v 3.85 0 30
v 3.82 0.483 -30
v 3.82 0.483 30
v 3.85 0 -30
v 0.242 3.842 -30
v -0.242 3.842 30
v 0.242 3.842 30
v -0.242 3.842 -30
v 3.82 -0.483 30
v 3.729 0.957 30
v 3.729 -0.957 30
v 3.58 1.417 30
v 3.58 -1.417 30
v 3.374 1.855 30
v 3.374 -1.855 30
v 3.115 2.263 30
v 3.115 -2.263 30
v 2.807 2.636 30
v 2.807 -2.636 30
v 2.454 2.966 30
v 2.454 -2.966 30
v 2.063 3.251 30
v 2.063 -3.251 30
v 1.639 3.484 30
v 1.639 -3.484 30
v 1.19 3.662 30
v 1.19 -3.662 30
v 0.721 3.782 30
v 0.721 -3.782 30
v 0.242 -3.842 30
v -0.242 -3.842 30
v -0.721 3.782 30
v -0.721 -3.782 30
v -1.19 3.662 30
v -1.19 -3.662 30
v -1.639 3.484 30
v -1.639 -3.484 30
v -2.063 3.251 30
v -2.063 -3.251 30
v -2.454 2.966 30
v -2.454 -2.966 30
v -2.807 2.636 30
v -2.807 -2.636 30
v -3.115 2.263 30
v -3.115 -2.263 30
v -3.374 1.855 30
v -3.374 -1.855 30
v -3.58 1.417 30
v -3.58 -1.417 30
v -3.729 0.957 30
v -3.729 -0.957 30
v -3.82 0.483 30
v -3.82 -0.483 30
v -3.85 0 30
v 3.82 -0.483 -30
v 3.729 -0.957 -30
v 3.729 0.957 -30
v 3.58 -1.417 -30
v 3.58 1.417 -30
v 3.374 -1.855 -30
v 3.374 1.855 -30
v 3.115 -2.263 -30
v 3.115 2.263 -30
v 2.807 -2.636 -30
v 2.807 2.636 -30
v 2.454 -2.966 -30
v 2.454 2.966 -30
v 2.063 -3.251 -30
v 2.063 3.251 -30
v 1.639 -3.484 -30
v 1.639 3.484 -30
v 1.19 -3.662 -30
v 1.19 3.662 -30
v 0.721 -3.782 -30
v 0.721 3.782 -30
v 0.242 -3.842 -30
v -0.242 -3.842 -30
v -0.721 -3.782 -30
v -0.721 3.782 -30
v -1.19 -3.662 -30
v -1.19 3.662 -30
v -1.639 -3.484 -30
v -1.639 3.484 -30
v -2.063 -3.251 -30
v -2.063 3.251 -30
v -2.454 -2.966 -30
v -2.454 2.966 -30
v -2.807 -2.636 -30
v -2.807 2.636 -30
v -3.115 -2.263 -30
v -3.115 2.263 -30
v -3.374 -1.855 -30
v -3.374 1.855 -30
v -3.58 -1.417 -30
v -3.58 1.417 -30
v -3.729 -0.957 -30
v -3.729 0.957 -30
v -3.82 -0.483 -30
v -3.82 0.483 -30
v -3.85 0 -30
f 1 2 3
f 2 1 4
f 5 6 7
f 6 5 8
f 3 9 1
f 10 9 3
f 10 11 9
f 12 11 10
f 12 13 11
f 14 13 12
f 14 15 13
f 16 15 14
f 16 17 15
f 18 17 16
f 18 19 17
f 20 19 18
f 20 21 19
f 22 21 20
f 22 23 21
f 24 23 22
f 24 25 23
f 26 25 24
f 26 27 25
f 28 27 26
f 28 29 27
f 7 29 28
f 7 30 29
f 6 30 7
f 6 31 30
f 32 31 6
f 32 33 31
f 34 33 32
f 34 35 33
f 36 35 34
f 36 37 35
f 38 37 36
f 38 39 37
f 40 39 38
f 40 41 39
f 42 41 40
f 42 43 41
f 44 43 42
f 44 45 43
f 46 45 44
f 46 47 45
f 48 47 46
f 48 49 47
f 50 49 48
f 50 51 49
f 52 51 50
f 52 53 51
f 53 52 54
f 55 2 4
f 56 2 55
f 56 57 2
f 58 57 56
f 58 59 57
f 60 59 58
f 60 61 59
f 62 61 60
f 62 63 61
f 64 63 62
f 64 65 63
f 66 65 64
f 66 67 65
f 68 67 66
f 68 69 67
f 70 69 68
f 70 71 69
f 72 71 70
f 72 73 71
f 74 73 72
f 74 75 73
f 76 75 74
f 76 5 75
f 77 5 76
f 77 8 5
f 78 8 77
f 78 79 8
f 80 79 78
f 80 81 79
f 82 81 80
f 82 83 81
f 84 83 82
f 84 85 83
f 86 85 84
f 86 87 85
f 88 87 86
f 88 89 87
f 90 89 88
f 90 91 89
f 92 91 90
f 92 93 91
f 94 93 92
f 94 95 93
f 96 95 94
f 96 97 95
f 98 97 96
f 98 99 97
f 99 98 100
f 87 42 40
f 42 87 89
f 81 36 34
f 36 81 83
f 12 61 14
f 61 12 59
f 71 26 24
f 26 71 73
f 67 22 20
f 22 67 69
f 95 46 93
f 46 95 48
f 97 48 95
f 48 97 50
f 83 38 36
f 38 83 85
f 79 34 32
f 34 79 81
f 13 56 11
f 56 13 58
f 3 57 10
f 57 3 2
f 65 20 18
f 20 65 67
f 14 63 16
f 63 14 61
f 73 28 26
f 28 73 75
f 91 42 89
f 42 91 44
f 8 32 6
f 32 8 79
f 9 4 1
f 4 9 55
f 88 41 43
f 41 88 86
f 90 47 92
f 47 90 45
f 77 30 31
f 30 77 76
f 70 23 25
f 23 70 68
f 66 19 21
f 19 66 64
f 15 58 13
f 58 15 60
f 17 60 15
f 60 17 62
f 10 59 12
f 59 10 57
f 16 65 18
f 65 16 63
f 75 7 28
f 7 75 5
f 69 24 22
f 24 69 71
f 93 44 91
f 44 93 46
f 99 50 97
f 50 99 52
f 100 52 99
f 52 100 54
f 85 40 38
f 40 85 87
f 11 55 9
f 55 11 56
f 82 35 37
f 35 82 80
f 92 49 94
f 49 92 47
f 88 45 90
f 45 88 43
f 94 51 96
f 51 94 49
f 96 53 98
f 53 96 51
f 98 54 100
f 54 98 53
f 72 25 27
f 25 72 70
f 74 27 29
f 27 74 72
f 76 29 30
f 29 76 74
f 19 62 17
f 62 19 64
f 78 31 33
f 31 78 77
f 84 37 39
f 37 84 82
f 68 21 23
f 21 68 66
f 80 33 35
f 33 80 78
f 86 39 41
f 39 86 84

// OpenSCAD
$fn = 50;


difference() {
	union() {
		translate(v = [0, 0, -30.0000000000]) {
			cylinder(h = 60, r = 3.8500000000);
		}
	}
	union() {
		translate(v = [0, 0, -100.0000000000]) {
			cylinder(h = 200, r = 0);
		}
	}
}
